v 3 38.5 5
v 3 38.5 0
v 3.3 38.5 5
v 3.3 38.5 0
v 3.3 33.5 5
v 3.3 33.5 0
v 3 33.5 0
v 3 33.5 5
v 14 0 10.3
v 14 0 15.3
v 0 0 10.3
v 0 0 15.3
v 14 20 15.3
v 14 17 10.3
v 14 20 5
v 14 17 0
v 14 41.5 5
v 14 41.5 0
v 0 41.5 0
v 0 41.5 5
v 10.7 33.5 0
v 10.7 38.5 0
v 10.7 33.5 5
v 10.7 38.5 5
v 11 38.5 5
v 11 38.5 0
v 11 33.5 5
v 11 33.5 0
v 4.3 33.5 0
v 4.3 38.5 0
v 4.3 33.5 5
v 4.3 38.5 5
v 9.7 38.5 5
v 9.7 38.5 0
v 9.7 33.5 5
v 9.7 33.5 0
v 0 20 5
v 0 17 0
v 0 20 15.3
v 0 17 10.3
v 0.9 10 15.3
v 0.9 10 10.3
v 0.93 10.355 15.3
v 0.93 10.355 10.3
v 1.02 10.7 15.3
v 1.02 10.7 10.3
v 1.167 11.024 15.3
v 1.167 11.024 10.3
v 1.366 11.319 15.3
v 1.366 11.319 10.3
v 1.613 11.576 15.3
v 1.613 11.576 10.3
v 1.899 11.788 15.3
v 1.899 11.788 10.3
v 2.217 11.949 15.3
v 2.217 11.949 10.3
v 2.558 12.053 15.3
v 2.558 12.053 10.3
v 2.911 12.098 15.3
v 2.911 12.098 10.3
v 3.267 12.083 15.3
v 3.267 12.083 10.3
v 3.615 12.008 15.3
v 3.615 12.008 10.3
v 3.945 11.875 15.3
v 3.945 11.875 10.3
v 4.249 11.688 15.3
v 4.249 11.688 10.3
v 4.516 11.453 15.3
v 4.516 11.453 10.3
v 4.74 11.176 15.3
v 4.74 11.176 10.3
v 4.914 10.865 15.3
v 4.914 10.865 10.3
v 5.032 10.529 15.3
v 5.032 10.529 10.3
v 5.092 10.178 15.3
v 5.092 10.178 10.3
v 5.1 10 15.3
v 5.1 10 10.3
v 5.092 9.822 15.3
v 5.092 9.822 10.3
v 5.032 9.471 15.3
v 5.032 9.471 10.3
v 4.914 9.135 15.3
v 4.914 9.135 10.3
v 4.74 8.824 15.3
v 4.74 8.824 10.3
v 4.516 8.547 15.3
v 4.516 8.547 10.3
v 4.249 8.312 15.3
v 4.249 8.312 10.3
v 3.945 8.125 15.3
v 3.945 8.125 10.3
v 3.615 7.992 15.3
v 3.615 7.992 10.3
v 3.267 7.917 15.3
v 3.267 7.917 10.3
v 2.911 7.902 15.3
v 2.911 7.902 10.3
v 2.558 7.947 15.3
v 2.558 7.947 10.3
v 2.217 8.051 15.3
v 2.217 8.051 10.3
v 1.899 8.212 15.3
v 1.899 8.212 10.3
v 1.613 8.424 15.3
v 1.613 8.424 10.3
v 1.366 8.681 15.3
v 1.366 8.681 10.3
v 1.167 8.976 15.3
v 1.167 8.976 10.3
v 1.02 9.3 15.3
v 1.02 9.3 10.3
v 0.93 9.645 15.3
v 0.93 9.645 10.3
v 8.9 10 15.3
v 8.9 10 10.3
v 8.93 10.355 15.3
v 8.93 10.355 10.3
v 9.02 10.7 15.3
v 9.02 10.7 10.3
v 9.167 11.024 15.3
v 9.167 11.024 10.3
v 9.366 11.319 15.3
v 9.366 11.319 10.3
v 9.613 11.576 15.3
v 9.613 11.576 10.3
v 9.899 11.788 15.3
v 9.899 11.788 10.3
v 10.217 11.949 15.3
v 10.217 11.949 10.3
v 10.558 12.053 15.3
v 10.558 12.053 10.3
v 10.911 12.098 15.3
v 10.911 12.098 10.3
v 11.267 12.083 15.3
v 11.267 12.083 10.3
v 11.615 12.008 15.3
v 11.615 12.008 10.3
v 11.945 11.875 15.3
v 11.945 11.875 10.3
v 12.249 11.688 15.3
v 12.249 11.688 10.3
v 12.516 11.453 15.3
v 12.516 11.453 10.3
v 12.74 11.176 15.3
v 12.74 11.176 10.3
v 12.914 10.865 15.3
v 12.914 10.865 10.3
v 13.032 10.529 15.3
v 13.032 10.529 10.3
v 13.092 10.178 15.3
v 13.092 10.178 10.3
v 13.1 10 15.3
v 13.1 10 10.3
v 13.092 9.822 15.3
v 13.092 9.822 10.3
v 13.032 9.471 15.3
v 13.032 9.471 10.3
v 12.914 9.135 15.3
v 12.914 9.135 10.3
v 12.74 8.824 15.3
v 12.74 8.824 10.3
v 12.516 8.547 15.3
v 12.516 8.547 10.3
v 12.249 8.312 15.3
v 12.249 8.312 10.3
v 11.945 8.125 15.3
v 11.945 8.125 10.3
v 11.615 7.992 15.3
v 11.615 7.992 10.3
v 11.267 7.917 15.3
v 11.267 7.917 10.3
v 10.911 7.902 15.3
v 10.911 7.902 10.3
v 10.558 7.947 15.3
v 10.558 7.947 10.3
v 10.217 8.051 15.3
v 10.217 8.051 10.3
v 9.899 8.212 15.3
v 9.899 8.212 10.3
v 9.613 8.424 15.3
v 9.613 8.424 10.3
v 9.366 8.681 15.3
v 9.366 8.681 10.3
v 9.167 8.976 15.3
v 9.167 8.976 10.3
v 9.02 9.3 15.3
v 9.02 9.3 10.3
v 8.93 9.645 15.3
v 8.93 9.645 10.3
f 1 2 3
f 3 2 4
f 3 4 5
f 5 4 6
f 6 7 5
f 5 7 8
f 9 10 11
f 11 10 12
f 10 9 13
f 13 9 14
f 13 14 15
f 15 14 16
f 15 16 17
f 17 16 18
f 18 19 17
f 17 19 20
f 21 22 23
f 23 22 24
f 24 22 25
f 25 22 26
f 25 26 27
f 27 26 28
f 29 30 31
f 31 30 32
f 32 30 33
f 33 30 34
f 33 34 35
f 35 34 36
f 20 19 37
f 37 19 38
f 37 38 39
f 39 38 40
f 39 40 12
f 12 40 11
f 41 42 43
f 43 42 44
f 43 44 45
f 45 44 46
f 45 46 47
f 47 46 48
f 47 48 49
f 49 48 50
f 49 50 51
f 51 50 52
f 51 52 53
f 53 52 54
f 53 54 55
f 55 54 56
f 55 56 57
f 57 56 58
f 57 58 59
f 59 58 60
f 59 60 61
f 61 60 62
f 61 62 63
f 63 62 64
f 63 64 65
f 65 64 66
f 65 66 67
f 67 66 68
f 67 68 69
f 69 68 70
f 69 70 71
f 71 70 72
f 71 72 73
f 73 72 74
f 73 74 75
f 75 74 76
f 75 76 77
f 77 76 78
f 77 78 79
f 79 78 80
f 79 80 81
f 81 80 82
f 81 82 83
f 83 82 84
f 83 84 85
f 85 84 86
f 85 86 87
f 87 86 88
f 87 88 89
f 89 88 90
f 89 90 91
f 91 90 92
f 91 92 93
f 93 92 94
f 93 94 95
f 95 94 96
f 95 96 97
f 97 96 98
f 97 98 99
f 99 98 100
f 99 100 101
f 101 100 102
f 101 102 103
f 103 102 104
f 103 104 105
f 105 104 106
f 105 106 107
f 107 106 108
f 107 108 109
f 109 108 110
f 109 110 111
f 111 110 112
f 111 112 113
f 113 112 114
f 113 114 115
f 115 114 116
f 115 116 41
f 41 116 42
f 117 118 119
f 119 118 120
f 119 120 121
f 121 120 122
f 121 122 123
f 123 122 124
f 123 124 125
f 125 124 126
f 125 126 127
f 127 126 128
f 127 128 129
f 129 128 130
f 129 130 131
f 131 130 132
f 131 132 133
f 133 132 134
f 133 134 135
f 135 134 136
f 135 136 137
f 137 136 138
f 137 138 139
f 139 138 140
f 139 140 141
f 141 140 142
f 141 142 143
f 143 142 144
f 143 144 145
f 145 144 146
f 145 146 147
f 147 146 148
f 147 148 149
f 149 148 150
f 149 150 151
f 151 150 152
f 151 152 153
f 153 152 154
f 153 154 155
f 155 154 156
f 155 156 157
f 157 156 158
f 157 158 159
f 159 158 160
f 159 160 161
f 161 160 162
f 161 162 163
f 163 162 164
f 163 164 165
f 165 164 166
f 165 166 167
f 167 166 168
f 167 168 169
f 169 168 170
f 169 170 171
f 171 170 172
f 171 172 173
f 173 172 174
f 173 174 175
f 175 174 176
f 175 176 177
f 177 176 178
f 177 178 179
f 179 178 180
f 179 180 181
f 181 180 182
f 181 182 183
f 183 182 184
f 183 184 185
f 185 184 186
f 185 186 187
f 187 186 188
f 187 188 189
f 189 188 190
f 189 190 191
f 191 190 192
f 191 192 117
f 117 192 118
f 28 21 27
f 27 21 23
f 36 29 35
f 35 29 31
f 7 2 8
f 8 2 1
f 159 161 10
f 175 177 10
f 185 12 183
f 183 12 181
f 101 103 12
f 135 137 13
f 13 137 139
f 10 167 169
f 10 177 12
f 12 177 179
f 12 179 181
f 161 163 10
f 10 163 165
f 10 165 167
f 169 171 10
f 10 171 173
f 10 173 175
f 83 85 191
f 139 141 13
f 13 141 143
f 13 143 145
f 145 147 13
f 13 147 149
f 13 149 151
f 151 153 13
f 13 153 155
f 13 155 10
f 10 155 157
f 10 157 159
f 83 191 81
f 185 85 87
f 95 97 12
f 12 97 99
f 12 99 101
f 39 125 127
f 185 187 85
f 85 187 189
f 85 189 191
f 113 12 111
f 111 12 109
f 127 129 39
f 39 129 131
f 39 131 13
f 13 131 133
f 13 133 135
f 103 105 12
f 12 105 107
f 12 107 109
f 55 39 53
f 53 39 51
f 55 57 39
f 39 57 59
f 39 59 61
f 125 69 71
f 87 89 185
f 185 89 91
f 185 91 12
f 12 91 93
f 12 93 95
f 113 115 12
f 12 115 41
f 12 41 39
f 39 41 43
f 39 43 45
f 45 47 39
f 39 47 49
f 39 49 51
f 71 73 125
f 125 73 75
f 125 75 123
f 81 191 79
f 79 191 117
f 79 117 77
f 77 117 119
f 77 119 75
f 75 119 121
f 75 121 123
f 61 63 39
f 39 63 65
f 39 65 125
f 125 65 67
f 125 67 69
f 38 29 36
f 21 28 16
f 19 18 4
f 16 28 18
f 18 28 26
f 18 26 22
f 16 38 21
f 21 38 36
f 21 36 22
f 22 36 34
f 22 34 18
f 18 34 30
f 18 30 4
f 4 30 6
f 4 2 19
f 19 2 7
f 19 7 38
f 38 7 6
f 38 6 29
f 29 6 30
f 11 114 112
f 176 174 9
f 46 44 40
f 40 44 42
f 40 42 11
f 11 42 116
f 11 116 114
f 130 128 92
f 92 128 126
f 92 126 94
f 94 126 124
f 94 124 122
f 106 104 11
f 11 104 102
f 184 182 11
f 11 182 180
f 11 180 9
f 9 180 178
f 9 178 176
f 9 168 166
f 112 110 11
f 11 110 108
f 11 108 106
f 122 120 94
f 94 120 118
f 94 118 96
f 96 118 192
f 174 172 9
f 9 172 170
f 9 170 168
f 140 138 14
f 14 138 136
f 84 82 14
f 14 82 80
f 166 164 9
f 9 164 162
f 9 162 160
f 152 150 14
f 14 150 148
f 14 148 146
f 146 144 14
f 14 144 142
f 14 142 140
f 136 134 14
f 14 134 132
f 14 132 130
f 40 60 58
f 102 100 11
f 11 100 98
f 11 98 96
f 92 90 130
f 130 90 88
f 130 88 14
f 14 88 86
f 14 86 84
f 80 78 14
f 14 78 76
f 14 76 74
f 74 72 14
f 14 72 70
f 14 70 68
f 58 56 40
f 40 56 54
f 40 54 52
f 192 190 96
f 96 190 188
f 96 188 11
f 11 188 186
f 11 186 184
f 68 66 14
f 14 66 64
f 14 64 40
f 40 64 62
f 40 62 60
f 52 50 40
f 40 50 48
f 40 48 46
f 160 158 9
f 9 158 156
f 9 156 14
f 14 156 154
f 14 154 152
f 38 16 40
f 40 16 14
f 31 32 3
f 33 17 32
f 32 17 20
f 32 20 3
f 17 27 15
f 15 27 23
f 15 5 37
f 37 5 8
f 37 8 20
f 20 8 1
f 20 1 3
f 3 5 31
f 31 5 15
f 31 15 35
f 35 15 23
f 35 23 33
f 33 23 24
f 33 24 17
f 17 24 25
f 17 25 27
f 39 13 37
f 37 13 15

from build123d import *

# Parameters (mm, degrees)
SKETCH1_W           = 14
SKETCH1_H           = 41.5
SKETCH1_R           = 2.1
SKETCH1_W_2         = 1
SKETCH1_H_2         = 5
BOSS_EXTRUDE3_DEPTH = 15.3
SKETCH2_W           = 10.3
SKETCH2_H           = 17
SKETCH2_H_2         = 21.5
CUT_EXTRUDE1_DEPTH  = 21


with BuildPart() as part:
    # Sketch1 → Boss-Extrude3 (new body)
    # profile 1 of 3: a face of its own
    with BuildSketch(Plane.XY):
        with Locations((7, 20.75)):
            Rectangle(SKETCH1_W, SKETCH1_H)
        with Locations((3, 10)):
            Circle(SKETCH1_R, mode=Mode.SUBTRACT)
        with Locations((11, 10)):
            Circle(SKETCH1_R, mode=Mode.SUBTRACT)
        Polygon((3.3, 38.5), (4.3, 38.5), (9.7, 38.5), (10.7, 38.5), (11, 38.5), (11, 33.5), (10.7, 33.5), (9.7, 33.5), (4.3, 33.5), (3.3, 33.5), (3, 33.5), (3, 38.5), align=None, mode=Mode.SUBTRACT)
    # profile 2 of 3: a face of its own
    with BuildSketch(Plane.XY):
        with Locations((3.8, 36)):
            Rectangle(SKETCH1_W_2, SKETCH1_H_2)
    # profile 3 of 3: a face of its own
    with BuildSketch(Plane.XY):
        with Locations((10.2, 36)):
            Rectangle(SKETCH1_W_2, SKETCH1_H_2)
    extrude(amount=BOSS_EXTRUDE3_DEPTH)

    # Sketch2 → Cut-Extrude1 (cut)
    with BuildSketch(Plane.ZY):
        with Locations((5.15, 8.5)):
            Rectangle(SKETCH2_W, SKETCH2_H)
        with Locations((10.15, 30.75)):
            Rectangle(SKETCH2_W, SKETCH2_H_2)
    extrude(amount=-CUT_EXTRUDE1_DEPTH, mode=Mode.SUBTRACT)


solid = part.part
